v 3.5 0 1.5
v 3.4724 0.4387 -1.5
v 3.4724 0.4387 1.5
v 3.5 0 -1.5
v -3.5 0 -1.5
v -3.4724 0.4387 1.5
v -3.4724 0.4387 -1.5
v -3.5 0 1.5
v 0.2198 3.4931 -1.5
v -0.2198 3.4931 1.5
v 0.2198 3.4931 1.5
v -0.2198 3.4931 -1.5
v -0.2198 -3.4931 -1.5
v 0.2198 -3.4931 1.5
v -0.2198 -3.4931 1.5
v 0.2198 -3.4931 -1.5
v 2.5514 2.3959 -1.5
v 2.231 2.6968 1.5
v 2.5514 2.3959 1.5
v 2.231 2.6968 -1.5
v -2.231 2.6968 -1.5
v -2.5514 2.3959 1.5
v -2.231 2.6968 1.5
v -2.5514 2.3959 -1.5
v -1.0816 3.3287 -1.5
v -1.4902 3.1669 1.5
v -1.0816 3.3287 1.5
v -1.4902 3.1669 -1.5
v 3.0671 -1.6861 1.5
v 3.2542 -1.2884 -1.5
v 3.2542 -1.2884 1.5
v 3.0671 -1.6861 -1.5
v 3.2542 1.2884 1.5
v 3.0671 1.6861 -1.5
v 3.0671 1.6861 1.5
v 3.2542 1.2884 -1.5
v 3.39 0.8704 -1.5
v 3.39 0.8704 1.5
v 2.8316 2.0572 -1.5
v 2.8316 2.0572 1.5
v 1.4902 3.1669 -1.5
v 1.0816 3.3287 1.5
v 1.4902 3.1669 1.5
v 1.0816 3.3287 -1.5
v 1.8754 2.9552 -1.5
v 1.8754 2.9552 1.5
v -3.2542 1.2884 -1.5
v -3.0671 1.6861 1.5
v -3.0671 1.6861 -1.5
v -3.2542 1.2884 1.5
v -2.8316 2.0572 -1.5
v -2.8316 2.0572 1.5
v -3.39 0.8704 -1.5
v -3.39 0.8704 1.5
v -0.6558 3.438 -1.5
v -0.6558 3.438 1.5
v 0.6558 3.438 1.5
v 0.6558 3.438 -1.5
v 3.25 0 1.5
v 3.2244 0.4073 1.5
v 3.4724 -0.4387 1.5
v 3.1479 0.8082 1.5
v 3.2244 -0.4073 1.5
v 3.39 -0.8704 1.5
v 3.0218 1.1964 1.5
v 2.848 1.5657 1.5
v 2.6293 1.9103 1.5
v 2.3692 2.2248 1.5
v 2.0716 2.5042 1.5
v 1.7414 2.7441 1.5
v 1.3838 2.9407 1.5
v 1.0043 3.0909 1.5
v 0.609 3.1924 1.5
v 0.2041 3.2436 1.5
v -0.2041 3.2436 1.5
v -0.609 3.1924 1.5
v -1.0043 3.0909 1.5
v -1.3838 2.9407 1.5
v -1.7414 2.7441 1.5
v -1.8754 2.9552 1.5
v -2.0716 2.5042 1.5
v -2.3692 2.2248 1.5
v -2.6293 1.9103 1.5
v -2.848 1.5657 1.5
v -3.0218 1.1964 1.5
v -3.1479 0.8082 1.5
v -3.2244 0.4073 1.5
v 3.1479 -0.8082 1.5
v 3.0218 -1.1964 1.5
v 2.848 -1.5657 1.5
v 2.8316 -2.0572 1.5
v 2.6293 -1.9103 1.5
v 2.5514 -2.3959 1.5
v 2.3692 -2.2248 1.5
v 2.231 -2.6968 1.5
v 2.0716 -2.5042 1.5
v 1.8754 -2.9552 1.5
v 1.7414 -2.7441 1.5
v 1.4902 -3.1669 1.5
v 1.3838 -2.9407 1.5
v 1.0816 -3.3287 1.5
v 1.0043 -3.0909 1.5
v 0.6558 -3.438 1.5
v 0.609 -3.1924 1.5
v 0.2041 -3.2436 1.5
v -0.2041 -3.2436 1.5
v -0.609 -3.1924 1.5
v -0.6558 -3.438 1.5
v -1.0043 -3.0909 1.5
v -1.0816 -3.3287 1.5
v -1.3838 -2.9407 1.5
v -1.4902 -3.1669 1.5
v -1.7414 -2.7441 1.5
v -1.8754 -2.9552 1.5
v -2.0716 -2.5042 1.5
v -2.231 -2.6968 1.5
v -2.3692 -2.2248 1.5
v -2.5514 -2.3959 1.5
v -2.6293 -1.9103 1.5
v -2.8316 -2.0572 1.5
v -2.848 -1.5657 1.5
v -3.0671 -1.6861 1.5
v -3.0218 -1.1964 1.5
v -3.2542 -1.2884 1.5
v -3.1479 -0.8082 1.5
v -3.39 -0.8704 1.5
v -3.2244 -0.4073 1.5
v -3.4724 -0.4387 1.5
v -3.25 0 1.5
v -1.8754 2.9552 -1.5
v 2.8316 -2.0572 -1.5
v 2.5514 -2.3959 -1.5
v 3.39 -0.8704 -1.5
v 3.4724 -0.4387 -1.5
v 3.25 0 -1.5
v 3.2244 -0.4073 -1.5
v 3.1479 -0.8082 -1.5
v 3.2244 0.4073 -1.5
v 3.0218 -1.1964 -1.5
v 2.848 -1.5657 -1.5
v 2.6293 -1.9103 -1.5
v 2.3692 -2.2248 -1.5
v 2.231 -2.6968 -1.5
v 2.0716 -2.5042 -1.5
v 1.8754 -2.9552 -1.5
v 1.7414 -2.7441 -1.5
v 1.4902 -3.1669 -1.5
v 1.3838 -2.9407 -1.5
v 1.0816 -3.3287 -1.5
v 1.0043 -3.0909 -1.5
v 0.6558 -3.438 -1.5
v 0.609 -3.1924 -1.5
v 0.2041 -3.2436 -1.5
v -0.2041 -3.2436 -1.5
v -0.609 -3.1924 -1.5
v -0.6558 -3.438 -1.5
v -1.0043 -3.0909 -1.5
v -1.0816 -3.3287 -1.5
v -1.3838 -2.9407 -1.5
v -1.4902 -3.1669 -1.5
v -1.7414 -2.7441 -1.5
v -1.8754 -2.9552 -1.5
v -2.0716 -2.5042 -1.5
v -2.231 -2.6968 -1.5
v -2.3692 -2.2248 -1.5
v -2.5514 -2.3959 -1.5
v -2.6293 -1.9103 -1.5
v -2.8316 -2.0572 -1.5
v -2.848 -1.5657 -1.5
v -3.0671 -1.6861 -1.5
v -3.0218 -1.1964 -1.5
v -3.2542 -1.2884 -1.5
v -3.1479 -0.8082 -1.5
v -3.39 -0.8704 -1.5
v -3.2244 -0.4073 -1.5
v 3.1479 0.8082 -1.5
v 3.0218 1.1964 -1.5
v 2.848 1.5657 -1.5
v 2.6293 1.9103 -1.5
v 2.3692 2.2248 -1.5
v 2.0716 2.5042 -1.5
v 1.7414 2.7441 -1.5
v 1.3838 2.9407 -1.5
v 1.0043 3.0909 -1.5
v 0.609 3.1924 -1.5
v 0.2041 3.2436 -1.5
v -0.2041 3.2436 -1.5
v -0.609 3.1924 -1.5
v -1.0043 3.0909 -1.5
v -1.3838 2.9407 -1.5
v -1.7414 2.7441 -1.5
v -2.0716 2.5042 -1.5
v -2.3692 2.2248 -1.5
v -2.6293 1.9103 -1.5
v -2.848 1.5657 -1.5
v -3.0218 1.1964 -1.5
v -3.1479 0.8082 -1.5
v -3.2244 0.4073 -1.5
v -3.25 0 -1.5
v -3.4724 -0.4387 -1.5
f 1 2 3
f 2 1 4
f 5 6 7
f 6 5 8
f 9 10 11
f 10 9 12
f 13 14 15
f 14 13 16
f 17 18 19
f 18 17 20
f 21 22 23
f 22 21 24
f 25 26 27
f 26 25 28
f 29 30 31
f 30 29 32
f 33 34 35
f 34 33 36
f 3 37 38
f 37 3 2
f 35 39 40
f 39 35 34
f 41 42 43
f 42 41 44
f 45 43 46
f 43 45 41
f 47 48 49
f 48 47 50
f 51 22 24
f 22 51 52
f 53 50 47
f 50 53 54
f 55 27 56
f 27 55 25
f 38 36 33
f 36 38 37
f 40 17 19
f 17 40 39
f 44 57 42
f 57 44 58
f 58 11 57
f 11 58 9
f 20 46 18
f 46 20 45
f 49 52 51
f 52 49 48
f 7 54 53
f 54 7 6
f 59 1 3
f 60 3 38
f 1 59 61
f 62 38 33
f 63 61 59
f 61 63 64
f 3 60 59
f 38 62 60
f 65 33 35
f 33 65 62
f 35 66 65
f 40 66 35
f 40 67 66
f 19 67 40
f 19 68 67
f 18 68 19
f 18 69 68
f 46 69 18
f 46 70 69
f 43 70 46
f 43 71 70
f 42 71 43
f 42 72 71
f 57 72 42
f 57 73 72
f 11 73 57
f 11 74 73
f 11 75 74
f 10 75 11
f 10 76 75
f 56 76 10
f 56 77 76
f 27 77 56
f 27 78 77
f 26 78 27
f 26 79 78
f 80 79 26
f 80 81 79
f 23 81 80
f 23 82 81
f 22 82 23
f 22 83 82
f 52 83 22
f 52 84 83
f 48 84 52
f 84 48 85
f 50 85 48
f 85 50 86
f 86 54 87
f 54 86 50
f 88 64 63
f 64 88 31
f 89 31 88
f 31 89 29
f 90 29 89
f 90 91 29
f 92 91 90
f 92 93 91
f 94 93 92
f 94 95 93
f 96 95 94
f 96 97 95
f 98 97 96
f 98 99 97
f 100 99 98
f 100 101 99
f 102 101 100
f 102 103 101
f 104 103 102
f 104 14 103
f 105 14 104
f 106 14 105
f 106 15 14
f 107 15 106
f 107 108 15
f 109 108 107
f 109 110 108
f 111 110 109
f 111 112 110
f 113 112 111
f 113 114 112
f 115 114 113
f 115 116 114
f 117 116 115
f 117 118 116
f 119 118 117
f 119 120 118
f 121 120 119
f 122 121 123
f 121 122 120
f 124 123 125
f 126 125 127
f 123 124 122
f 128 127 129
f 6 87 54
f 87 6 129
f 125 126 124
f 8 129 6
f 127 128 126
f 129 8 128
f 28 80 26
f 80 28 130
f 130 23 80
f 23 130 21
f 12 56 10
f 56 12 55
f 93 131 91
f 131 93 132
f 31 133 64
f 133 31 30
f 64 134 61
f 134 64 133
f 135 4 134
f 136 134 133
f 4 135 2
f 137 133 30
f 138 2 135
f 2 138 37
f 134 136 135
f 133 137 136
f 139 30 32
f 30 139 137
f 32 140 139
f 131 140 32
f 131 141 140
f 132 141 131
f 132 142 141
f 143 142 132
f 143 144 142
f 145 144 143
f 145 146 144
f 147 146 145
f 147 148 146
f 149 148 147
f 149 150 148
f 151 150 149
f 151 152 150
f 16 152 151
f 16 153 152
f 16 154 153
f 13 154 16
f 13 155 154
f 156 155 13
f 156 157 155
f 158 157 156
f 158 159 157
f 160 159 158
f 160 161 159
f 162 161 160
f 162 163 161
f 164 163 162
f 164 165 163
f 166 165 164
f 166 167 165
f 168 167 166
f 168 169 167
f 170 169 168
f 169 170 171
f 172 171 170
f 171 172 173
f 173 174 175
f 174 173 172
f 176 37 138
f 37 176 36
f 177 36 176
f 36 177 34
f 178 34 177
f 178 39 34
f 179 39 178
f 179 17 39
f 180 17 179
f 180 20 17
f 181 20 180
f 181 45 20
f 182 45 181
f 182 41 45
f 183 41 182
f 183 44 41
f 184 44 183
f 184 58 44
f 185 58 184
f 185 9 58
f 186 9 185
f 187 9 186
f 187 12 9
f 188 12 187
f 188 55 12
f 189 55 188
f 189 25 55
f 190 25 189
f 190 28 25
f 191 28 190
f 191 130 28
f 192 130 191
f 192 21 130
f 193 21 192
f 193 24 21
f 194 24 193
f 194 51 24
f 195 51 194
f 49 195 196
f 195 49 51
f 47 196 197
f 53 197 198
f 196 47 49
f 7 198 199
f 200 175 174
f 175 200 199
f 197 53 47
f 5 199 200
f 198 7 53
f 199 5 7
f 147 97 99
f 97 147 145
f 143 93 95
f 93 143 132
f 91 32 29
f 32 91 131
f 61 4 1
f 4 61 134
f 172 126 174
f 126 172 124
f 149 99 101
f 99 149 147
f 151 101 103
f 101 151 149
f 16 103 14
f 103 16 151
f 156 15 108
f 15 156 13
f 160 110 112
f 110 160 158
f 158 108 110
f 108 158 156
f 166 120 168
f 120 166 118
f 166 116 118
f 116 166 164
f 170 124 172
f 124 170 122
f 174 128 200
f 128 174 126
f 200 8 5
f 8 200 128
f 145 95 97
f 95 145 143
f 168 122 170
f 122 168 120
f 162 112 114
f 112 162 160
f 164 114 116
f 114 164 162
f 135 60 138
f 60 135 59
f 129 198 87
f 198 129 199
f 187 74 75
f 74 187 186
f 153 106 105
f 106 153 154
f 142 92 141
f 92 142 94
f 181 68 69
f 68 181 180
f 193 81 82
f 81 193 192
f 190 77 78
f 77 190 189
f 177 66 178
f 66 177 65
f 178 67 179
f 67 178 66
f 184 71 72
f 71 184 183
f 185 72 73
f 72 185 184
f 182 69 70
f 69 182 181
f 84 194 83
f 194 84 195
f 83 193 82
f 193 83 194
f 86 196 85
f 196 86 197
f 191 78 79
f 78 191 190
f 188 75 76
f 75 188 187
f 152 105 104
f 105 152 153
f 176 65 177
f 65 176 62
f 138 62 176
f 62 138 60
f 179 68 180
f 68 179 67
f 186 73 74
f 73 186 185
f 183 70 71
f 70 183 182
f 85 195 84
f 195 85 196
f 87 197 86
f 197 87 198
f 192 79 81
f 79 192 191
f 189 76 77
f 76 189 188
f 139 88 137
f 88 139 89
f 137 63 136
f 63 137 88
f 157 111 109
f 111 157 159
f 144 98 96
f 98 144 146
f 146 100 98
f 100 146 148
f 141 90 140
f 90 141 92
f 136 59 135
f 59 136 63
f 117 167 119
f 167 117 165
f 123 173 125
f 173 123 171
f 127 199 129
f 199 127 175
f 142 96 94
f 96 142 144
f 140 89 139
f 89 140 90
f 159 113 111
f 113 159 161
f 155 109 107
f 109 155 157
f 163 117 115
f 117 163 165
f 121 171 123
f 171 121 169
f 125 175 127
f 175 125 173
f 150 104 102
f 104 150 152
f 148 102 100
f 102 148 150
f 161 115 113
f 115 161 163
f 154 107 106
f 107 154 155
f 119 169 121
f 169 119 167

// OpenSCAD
$fn = 50;


difference() {
	union() {
		translate(v = [0, 0, -1.5000000000]) {
			cylinder(h = 3, r = 3.5000000000);
		}
	}
	union() {
		translate(v = [0, 0, -100.0000000000]) {
			cylinder(h = 200, r = 3.2500000000);
		}
	}
}
